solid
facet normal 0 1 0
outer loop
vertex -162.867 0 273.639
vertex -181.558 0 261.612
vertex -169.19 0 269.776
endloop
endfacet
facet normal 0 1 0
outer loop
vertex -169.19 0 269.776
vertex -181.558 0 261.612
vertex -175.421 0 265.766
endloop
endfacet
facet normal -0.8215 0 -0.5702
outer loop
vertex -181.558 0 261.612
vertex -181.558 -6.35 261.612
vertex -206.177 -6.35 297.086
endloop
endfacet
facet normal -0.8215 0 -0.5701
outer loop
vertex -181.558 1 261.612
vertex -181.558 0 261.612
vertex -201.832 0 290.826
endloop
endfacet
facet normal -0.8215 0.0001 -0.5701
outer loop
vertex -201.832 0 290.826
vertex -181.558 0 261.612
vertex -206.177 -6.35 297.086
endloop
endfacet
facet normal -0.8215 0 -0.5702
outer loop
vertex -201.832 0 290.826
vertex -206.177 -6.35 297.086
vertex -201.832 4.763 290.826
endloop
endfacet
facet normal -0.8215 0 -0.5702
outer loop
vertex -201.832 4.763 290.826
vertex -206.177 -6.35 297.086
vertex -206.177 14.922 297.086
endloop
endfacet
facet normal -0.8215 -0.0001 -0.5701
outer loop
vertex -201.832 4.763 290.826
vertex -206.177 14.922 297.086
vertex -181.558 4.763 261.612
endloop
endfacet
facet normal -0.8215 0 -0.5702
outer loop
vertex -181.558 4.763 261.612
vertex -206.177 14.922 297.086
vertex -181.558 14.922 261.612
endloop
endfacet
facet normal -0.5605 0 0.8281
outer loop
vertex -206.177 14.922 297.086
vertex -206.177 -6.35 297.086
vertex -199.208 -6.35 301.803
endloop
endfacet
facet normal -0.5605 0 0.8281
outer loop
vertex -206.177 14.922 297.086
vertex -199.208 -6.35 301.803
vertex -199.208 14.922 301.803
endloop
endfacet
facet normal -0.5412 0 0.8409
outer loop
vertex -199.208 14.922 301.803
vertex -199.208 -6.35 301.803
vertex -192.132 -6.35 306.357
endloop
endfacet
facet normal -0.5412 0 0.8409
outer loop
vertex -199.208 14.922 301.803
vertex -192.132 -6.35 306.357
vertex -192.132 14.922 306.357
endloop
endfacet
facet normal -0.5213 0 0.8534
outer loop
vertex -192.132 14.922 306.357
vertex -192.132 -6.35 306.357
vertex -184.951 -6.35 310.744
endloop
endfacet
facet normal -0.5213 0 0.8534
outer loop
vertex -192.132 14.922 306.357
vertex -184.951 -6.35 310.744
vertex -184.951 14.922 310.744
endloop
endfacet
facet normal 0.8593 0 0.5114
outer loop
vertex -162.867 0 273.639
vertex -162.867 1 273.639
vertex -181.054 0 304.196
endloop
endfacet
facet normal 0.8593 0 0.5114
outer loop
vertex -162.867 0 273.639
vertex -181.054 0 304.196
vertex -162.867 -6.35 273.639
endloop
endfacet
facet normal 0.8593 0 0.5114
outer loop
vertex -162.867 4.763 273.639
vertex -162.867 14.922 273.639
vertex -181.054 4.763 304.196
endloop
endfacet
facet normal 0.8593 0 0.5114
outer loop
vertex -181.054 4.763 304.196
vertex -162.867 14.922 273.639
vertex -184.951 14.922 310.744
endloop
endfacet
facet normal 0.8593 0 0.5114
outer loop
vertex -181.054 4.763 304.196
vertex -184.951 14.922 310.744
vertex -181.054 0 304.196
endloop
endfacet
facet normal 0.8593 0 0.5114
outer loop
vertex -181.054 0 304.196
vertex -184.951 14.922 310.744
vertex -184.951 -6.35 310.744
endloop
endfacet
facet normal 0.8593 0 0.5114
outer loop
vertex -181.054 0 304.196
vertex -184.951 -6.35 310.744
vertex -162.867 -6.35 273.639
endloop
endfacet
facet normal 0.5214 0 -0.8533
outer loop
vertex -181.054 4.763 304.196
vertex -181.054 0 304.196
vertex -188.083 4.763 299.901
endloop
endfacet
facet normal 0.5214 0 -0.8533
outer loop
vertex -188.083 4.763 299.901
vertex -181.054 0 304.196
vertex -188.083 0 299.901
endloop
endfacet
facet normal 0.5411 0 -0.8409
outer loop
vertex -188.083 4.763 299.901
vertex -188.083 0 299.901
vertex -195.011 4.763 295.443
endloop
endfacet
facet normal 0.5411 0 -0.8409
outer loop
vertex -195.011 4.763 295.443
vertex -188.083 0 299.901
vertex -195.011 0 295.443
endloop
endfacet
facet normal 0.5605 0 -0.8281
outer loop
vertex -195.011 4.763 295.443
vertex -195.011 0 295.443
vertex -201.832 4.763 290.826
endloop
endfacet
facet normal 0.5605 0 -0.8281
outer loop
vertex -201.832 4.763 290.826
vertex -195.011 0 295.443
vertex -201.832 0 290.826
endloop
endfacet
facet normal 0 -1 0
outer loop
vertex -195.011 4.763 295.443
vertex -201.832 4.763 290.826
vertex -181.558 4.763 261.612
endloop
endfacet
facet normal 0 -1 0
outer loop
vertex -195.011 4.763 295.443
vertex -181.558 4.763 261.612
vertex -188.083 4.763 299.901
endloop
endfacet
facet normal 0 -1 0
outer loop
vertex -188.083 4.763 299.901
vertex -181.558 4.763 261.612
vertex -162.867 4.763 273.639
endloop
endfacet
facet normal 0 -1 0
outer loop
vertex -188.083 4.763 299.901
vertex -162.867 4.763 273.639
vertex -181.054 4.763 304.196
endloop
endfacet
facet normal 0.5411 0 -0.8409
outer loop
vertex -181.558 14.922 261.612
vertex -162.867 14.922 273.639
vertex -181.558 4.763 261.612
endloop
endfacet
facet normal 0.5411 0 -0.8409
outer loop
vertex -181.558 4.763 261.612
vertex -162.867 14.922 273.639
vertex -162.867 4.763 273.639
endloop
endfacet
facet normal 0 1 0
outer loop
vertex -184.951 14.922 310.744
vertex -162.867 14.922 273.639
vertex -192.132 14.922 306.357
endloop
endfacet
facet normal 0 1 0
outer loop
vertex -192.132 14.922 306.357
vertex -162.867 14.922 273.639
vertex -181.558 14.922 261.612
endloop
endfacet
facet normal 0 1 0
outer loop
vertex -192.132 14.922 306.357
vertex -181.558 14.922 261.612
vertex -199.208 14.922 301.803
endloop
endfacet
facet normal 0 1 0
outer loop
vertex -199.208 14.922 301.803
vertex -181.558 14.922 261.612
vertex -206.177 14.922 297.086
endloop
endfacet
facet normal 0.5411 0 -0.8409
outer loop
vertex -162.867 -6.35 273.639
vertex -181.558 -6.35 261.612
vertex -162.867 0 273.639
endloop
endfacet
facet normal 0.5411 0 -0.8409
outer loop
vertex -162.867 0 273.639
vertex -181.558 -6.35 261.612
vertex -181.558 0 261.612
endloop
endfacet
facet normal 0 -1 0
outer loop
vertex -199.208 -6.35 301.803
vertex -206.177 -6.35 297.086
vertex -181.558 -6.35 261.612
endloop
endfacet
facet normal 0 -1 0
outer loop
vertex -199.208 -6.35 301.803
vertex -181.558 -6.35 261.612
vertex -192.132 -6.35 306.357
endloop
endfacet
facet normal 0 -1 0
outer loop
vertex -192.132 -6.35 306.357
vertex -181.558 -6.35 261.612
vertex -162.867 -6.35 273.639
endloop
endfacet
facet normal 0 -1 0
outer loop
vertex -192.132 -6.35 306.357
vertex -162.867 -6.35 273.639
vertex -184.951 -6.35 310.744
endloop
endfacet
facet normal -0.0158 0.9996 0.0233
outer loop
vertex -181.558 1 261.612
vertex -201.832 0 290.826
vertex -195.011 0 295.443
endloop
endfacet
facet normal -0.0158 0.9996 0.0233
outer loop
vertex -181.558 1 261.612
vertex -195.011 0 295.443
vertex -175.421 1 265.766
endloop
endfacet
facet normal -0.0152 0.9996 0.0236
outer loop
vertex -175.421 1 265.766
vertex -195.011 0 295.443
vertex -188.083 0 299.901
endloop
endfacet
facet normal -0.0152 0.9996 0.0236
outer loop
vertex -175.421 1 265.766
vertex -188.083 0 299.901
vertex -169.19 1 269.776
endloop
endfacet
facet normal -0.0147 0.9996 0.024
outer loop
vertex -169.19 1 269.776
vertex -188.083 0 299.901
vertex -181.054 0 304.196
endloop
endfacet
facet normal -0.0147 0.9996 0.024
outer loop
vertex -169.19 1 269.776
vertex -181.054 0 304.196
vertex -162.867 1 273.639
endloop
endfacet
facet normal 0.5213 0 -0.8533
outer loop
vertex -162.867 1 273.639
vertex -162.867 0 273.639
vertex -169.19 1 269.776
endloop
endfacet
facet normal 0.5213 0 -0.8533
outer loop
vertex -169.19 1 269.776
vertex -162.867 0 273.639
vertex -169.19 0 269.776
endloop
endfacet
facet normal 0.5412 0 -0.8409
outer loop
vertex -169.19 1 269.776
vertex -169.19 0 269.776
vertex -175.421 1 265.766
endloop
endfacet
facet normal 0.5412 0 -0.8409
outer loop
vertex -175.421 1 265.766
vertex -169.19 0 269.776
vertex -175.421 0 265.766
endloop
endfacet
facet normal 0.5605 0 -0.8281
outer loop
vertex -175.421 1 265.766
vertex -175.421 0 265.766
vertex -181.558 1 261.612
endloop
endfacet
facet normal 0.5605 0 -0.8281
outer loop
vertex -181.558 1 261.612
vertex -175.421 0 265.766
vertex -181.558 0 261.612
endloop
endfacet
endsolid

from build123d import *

# Parameters (mm, degrees)
BOSS_EXTRUDE1_DEPTH = 4.7625
BOSS_EXTRUDE2_DEPTH = 10.16
BOSS_EXTRUDE3_START = 6.35
BOSS_EXTRUDE3_DEPTH = 6.35
REVOLVE1_ANGLE      = 4


with BuildPart() as part:
    # Sketch1 → Boss-Extrude1 (new body)
    with BuildSketch(Plane(origin=(0, 0, 0), x_dir=(1, 0, 0), z_dir=(0, 1, 0))):
        with BuildLine():
            Line((-201.832488243, -290.825801155), (-206.177018076, -297.085949758))
            ThreePointArc((-206.177018076, -297.085949758), (-195.683270483, -304.100447187), (-184.951112968, -310.744445064))
            Line((-184.951112968, -310.744445064), (-181.053852083, -304.196486787))
            ThreePointArc((-181.053852083, -304.196486787), (-191.559863256, -297.692490193), (-201.832488243, -290.825801155))
        make_face()
    extrude(amount=BOSS_EXTRUDE1_DEPTH)

    # Sketch2 → Boss-Extrude2 (add)
    with BuildSketch(Plane(origin=(0, 4.7625, 0), x_dir=(1, 0, 0), z_dir=(0, 1, 0))):
        with BuildLine():
            Line((-206.177018076, -297.085949758), (-181.558015689, -261.611774341))
            Line((-181.558015689, -261.611774341), (-162.86663462, -273.639348162))
            Line((-162.86663462, -273.639348162), (-184.951112968, -310.744445064))
            ThreePointArc((-184.951112968, -310.744445064), (-195.683270483, -304.100447187), (-206.177018076, -297.085949758))
        make_face()
    extrude(amount=BOSS_EXTRUDE2_DEPTH)

    # Sketch3 → Boss-Extrude3 (add)
    with BuildSketch(Plane.XZ.offset(BOSS_EXTRUDE3_START)):
        with BuildLine():
            ThreePointArc((-184.951112968, 310.744445064), (-195.683270483, 304.100447187), (-206.177018076, 297.085949758))
            Line((-206.177018076, 297.085949758), (-201.832488243, 290.825801155))
            ThreePointArc((-201.832488243, 290.825801155), (-191.559863256, 297.692490193), (-181.053852083, 304.196486787))
            Line((-181.053852083, 304.196486787), (-184.951112968, 310.744445064))
        make_face()
        with BuildLine():
            Line((-162.86663462, 273.639348162), (-181.053852083, 304.196486787))
            ThreePointArc((-181.053852083, 304.196486787), (-191.559863256, 297.692490193), (-201.832488243, 290.825801155))
            Line((-201.832488243, 290.825801155), (-181.558015689, 261.611774341))
            Line((-181.558015689, 261.611774341), (-162.86663462, 273.639348162))
        make_face()
    extrude(amount=-BOSS_EXTRUDE3_DEPTH)

    # Sketch4 → Revolve1 (revolve)
    with BuildSketch(Plane(origin=(0, 0, 0), x_dir=(-0.5701482720363652, 0, 0.8215418114094662), z_dir=(-0.8215418114094664, 0, -0.5701482720363652))):
        Polygon((318.439999898, 1), (353.999999898, 0), (318.439999898, 0), align=None)
    revolve(axis=Axis((0, 0, 0), (0, 1, 0)), revolution_arc=REVOLVE1_ANGLE)


solid = part.part
